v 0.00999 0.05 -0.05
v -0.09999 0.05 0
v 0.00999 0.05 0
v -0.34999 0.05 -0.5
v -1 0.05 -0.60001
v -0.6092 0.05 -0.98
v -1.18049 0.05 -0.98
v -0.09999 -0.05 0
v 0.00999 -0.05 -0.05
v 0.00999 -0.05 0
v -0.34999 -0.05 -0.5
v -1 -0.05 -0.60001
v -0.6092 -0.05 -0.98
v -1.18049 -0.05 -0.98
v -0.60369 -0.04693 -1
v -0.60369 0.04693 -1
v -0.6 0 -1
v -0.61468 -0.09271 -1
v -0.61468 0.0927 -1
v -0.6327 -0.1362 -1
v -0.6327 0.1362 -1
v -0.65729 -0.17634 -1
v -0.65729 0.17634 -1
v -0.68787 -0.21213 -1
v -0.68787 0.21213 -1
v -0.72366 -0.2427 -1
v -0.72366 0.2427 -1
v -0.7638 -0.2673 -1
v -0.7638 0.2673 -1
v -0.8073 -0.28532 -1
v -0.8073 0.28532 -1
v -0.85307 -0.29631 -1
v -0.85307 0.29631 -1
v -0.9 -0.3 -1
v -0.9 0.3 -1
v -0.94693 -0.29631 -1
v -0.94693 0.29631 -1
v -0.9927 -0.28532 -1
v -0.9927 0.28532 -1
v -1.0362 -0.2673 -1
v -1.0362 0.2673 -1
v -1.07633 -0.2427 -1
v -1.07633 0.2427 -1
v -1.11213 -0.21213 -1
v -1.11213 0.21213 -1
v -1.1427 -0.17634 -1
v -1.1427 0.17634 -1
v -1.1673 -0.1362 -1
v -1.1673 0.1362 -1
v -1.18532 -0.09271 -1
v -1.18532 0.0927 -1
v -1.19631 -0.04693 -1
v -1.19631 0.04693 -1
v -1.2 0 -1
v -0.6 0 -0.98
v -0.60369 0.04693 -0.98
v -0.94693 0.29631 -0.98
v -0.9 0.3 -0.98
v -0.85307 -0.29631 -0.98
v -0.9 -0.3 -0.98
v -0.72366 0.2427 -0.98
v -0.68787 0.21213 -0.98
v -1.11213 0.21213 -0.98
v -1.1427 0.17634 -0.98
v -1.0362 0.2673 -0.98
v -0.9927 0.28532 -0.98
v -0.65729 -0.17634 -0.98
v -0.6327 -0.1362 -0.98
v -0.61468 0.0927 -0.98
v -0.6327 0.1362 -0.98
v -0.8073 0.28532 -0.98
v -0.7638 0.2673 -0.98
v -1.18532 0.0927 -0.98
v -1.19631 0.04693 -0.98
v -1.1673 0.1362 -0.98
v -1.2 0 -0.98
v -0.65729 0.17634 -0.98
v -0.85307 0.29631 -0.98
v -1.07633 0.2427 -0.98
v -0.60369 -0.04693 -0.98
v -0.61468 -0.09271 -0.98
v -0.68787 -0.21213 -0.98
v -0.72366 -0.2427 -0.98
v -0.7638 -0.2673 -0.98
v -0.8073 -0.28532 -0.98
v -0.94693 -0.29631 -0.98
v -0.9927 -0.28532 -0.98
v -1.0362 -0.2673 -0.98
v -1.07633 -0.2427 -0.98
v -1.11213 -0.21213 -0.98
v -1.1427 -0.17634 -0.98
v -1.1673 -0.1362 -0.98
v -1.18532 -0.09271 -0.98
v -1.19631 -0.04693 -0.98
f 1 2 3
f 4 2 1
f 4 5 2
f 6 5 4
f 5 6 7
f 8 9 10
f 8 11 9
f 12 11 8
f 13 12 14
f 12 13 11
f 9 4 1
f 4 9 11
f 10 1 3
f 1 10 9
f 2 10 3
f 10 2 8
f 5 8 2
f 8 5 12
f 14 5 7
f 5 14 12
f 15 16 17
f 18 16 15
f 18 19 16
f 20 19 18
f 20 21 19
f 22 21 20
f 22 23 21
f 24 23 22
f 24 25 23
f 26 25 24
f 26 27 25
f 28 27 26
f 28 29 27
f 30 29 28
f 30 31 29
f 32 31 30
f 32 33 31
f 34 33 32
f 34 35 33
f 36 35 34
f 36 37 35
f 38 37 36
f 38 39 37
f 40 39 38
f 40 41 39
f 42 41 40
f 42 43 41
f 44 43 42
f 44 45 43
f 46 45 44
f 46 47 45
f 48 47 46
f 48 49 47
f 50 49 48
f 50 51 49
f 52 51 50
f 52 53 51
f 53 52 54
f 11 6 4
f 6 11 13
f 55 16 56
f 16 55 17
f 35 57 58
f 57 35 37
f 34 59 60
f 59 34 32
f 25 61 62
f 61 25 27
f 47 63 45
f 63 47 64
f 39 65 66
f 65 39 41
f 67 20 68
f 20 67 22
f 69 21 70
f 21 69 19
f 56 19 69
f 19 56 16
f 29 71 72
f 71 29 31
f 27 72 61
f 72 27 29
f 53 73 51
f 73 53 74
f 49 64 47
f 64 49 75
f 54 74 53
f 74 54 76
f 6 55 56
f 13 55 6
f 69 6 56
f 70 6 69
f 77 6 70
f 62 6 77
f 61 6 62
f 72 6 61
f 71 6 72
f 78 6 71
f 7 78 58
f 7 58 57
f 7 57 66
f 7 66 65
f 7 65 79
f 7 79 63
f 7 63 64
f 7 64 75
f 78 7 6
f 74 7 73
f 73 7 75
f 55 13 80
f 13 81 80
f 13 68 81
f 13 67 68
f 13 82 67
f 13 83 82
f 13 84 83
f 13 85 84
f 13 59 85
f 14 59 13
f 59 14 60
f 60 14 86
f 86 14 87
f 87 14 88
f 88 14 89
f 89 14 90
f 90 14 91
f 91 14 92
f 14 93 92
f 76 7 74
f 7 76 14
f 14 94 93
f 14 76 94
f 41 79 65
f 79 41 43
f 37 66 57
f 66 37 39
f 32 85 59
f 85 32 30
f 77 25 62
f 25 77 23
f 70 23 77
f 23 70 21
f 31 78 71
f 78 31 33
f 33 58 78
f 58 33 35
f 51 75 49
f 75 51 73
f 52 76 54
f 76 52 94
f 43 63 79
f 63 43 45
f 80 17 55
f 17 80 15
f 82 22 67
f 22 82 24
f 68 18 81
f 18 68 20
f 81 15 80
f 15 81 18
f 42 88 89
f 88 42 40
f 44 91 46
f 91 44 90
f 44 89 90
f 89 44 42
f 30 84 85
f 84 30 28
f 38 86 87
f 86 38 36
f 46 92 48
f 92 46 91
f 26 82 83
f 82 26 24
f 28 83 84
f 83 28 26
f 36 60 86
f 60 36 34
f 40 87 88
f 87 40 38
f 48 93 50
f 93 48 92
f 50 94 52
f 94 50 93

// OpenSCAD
//----------------------------------------------
// Arch buttress Support Style
// Size must be 1mm height 
//----------------------------------------------
$fn=40;

translate([-0.5,-0.5,-1.0]) 
union() {
    translate([0.5,0.55,0.0]) rotate([90, 0, 0]) {
			linear_extrude(height=0.1) {
				polygon(points=[[-0.62,0],[-1.19,0],[-1,0.4],[-0.1,1],[0.01,1],[0.01,0.95],[-0.35,0.5]], convexity=1);
			}
		}
    translate([-0.4,0.5,0.0]) cylinder ( h = 0.02, r = 0.3, center = false);
}
